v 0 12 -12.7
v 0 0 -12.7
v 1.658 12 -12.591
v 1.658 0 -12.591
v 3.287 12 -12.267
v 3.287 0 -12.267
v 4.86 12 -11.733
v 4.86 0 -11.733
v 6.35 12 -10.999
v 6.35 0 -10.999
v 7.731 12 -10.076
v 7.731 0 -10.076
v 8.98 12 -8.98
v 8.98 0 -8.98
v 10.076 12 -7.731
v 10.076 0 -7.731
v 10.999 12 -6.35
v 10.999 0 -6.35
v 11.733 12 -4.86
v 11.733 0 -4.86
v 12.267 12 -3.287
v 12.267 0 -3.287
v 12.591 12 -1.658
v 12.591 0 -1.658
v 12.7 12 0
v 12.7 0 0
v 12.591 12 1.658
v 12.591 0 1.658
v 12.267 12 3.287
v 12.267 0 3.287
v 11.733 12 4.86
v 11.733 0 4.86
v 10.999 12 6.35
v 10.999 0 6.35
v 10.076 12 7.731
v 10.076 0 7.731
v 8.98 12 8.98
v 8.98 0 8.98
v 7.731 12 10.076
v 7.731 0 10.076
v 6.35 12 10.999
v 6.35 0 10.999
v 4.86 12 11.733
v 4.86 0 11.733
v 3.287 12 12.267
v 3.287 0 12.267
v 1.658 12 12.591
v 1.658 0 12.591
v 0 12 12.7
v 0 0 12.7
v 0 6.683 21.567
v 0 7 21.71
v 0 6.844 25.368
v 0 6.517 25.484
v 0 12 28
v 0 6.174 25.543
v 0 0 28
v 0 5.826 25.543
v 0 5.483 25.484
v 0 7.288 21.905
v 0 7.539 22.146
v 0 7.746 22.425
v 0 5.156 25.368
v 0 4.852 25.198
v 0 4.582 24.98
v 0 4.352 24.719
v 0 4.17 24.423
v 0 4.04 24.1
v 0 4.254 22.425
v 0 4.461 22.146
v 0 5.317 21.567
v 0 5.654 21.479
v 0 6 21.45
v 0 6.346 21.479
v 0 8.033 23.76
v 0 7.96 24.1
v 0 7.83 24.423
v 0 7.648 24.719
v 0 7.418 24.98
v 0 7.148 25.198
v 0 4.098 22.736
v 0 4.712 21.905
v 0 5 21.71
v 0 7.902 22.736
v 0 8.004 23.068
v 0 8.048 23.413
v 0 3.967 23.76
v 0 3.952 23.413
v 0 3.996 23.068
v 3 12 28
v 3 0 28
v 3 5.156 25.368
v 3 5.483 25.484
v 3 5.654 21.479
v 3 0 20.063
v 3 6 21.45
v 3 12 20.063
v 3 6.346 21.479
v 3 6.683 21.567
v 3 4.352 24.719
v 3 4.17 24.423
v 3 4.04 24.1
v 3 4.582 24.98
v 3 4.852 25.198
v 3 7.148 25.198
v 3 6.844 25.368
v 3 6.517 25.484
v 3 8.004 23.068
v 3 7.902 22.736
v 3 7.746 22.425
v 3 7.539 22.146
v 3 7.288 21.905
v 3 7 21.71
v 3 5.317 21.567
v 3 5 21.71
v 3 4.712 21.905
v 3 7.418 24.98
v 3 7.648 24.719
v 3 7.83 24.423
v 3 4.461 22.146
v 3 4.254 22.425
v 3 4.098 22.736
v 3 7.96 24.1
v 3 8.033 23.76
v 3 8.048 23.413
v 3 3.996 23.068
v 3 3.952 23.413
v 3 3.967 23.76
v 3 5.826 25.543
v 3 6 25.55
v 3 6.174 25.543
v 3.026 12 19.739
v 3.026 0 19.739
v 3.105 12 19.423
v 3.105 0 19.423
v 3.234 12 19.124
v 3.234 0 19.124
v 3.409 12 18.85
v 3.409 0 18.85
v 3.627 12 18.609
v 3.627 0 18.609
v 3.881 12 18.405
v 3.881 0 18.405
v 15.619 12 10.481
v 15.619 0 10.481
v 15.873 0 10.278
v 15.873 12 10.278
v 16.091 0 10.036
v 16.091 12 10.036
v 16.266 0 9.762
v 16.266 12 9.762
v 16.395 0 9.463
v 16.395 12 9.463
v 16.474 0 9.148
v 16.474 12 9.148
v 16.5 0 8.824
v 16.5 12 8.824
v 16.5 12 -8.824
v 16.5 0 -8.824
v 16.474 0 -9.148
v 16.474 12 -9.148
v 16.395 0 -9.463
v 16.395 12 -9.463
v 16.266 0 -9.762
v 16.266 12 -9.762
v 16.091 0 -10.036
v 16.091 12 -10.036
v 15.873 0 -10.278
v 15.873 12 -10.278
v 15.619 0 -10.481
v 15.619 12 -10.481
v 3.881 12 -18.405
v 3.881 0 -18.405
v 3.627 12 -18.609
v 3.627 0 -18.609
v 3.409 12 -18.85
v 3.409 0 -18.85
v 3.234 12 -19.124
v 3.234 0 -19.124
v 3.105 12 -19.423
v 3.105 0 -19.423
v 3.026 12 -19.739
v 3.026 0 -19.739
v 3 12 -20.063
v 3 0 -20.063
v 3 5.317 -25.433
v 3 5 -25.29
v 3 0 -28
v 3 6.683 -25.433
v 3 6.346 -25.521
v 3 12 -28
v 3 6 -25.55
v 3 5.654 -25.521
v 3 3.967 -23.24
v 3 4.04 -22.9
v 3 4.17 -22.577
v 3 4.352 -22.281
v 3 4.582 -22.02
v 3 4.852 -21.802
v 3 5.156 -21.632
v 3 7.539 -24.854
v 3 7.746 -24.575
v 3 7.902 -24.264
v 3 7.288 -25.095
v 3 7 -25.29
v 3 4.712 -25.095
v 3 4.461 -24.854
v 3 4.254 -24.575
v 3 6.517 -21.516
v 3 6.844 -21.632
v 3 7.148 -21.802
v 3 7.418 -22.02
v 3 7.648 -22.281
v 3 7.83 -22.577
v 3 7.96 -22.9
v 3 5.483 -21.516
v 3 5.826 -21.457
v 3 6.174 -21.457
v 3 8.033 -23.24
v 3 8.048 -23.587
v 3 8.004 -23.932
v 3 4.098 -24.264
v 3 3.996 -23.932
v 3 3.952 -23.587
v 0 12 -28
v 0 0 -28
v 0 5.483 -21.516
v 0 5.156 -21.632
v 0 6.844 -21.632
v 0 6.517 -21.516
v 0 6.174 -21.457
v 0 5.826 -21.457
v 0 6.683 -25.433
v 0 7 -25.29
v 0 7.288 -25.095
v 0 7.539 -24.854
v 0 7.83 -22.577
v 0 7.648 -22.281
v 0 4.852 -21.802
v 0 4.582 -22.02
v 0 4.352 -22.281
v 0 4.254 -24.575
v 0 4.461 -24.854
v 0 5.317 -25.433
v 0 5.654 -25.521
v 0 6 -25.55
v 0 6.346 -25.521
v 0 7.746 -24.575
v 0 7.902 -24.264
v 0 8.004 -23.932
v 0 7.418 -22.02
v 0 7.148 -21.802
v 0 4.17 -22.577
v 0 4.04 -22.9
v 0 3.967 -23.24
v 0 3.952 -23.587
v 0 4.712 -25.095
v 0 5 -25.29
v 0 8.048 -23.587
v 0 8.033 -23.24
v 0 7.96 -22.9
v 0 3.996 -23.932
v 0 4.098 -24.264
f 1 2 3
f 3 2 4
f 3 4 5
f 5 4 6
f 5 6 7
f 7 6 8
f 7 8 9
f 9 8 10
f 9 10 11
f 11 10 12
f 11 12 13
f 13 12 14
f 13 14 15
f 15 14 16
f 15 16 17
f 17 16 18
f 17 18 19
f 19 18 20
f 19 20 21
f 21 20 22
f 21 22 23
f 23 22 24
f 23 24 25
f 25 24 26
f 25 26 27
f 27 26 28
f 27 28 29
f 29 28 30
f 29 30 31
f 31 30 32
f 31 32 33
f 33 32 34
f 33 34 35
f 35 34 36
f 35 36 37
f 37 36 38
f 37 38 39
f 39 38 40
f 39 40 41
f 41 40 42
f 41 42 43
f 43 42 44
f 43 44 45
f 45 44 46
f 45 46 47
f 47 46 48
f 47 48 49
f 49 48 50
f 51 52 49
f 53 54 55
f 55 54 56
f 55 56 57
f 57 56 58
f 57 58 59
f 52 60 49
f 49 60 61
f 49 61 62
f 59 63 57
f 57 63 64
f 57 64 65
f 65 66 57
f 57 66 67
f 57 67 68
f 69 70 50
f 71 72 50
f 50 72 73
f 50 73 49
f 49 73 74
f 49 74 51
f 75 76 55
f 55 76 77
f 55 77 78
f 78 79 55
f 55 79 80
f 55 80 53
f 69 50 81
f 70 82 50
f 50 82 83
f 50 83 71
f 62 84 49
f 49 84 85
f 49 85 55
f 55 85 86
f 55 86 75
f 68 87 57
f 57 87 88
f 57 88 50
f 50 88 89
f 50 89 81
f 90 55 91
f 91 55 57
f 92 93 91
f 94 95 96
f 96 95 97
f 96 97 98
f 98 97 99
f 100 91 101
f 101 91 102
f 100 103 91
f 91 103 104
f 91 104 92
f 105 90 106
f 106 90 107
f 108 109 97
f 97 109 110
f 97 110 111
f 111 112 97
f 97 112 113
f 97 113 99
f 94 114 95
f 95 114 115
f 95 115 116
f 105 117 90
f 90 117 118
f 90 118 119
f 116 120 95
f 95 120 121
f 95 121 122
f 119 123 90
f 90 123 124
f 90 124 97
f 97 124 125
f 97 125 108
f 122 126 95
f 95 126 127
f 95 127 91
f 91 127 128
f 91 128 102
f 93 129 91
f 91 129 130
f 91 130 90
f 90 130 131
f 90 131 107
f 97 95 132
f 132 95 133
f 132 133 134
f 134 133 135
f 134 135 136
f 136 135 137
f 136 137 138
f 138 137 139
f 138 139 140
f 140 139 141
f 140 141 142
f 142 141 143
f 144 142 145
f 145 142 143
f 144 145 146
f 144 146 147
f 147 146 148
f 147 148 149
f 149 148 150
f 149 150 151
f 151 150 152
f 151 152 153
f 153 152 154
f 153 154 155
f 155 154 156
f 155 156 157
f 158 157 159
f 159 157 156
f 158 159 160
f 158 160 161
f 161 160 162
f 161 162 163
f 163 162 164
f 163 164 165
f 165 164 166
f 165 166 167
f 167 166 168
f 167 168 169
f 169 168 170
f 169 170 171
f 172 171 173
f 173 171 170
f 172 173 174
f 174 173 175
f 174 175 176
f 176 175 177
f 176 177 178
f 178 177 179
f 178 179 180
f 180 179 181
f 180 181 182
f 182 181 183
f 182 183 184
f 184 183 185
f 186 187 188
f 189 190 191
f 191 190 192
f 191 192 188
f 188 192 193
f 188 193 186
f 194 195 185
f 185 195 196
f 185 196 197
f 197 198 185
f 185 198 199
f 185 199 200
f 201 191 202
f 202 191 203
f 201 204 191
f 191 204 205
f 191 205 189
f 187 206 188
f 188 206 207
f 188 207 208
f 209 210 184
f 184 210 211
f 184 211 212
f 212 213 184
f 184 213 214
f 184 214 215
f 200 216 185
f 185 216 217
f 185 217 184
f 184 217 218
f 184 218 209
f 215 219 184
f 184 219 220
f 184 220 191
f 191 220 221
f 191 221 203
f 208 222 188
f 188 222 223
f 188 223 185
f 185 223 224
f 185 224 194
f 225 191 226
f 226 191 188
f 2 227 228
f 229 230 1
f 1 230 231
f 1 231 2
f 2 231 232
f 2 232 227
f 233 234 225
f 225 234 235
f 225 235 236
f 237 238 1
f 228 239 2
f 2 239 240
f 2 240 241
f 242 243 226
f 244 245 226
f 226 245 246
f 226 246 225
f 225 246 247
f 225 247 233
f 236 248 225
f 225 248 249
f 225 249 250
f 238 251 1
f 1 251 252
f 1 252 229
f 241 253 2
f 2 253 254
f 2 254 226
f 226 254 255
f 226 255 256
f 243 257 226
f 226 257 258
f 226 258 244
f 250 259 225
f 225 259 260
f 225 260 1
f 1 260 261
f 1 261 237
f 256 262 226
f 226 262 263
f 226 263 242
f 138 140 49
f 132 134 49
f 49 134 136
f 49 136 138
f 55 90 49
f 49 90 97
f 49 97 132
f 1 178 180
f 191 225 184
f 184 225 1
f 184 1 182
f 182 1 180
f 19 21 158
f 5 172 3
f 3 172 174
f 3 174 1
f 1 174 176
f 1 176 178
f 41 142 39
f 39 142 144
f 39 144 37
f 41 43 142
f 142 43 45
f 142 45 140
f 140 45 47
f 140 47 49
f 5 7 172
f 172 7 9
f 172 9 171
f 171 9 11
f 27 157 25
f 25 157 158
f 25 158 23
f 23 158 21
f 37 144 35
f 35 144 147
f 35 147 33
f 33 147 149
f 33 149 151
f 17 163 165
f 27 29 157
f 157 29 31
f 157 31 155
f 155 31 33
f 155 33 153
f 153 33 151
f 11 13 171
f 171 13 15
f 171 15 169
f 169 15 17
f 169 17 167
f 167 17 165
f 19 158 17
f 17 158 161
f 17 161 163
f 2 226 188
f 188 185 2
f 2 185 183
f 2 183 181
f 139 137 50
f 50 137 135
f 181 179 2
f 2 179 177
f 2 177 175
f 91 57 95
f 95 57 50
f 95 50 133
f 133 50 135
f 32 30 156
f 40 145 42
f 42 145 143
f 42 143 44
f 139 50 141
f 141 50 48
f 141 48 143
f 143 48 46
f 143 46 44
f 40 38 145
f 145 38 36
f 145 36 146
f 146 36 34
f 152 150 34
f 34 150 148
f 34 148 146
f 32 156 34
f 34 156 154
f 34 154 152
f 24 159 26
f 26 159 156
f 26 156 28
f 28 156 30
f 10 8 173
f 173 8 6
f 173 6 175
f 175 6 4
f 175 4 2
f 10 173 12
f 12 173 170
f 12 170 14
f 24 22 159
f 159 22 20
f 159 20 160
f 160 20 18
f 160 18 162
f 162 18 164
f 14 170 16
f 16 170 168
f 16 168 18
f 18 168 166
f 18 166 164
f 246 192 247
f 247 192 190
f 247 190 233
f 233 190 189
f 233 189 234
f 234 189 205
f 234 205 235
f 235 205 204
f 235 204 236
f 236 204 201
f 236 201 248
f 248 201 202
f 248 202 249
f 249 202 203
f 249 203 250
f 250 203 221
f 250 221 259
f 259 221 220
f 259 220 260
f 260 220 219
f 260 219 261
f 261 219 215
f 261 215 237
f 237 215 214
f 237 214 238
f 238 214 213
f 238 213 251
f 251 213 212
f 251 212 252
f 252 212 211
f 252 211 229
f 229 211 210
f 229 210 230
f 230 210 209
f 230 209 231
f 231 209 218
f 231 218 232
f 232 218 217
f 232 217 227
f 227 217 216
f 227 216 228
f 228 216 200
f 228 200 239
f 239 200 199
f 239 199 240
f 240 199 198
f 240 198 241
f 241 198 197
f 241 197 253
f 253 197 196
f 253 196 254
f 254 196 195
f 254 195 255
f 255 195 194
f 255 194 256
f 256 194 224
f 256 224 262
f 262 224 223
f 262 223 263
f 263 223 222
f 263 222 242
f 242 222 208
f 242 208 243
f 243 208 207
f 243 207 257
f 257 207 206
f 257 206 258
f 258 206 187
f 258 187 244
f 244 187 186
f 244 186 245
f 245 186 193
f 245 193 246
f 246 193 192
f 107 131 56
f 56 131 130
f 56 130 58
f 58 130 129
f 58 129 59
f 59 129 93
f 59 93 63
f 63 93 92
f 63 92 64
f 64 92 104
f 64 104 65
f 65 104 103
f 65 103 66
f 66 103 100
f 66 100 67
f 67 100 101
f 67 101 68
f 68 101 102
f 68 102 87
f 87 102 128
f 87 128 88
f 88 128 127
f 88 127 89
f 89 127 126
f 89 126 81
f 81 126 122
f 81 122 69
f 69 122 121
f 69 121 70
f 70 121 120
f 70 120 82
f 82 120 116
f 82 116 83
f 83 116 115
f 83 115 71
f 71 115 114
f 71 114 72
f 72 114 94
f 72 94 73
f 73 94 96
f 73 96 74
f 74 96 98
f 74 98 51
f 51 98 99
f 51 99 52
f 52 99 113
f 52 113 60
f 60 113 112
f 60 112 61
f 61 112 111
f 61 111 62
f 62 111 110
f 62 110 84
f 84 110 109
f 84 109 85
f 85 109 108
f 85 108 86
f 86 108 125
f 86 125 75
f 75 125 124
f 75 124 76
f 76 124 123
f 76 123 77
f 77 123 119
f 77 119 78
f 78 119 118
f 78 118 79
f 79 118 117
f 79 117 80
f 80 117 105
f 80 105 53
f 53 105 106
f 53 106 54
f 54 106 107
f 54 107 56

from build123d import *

# Parameters (mm, degrees)
BOSS_EXTRUDE1_DEPTH = 12
SKETCH2_R           = 2.05
CUT_EXTRUDE1_DEPTH  = 12


with BuildPart() as part:
    # Sketch1 → Boss-Extrude1 (new body)
    with BuildSketch(Plane(origin=(0, 0, 0), x_dir=(1, 0, 0), z_dir=(0, 1, 0))):
        with BuildLine():
            ThreePointArc((3.343223695, 18.942620076), (1.678008896, 19.162053286), (0, 19.235384062))
            Line((0, 19.235384062), (0, 12.7))
            ThreePointArc((0, 12.7), (8.980256121, 8.980256121), (12.7, 0))
            Line((12.7, 0), (16.500228948, 0))
            Line((16.500228948, 0), (16.500228948, 8.823548786))
            ThreePointArc((16.500228948, 8.823548786), (16.266303378, 9.762154724), (15.619247841, 10.481196733))
            Line((15.619247841, 10.481196733), (3.880981107, 18.405281137))
            ThreePointArc((3.880981107, 18.405281137), (3.586337017, 18.648165156), (3.343223695, 18.942620076))
        make_face()
        with BuildLine():
            Line((3, 28), (0, 28))
            Line((0, 28), (0, 19.235384062))
            ThreePointArc((0, 19.235384062), (1.678008896, 19.162053286), (3.343223695, 18.942620076))
            ThreePointArc((3.343223695, 18.942620076), (3.087730065, 19.477076121), (3, 20.062929084))
            Line((3, 20.062929084), (3, 28))
        make_face()
        with BuildLine():
            Line((16.500228948, 0), (12.7, 0))
            ThreePointArc((12.7, 0), (8.980256121, -8.980256121), (0, -12.7))
            Line((0, -12.7), (0, -19.235384062))
            ThreePointArc((0, -19.235384062), (1.678008896, -19.162053286), (3.343223695, -18.942620076))
            ThreePointArc((3.343223695, -18.942620076), (3.586337017, -18.648165156), (3.880981107, -18.405281137))
            Line((3.880981107, -18.405281137), (15.619247841, -10.481196733))
            ThreePointArc((15.619247841, -10.481196733), (16.266303378, -9.762154724), (16.500228948, -8.823548786))
            Line((16.500228948, -8.823548786), (16.500228948, 0))
        make_face()
        with BuildLine():
            ThreePointArc((3.343223695, -18.942620076), (1.678008896, -19.162053286), (0, -19.235384062))
            Line((0, -19.235384062), (0, -28))
            Line((0, -28), (3, -28))
            Line((3, -28), (3, -20.062929084))
            ThreePointArc((3, -20.062929084), (3.087730065, -19.477076121), (3.343223695, -18.942620076))
        make_face()
    extrude(amount=BOSS_EXTRUDE1_DEPTH)

    # Sketch2 → Cut-Extrude1 (cut)
    with BuildSketch(Plane(origin=(3, 0, 0), x_dir=(0, 0, -1), z_dir=(1, 0, 0))):
        with Locations((23.5, 6)):
            Circle(SKETCH2_R)
        with Locations((-23.5, 6)):
            Circle(SKETCH2_R)
    extrude(amount=-CUT_EXTRUDE1_DEPTH, mode=Mode.SUBTRACT)


solid = part.part
